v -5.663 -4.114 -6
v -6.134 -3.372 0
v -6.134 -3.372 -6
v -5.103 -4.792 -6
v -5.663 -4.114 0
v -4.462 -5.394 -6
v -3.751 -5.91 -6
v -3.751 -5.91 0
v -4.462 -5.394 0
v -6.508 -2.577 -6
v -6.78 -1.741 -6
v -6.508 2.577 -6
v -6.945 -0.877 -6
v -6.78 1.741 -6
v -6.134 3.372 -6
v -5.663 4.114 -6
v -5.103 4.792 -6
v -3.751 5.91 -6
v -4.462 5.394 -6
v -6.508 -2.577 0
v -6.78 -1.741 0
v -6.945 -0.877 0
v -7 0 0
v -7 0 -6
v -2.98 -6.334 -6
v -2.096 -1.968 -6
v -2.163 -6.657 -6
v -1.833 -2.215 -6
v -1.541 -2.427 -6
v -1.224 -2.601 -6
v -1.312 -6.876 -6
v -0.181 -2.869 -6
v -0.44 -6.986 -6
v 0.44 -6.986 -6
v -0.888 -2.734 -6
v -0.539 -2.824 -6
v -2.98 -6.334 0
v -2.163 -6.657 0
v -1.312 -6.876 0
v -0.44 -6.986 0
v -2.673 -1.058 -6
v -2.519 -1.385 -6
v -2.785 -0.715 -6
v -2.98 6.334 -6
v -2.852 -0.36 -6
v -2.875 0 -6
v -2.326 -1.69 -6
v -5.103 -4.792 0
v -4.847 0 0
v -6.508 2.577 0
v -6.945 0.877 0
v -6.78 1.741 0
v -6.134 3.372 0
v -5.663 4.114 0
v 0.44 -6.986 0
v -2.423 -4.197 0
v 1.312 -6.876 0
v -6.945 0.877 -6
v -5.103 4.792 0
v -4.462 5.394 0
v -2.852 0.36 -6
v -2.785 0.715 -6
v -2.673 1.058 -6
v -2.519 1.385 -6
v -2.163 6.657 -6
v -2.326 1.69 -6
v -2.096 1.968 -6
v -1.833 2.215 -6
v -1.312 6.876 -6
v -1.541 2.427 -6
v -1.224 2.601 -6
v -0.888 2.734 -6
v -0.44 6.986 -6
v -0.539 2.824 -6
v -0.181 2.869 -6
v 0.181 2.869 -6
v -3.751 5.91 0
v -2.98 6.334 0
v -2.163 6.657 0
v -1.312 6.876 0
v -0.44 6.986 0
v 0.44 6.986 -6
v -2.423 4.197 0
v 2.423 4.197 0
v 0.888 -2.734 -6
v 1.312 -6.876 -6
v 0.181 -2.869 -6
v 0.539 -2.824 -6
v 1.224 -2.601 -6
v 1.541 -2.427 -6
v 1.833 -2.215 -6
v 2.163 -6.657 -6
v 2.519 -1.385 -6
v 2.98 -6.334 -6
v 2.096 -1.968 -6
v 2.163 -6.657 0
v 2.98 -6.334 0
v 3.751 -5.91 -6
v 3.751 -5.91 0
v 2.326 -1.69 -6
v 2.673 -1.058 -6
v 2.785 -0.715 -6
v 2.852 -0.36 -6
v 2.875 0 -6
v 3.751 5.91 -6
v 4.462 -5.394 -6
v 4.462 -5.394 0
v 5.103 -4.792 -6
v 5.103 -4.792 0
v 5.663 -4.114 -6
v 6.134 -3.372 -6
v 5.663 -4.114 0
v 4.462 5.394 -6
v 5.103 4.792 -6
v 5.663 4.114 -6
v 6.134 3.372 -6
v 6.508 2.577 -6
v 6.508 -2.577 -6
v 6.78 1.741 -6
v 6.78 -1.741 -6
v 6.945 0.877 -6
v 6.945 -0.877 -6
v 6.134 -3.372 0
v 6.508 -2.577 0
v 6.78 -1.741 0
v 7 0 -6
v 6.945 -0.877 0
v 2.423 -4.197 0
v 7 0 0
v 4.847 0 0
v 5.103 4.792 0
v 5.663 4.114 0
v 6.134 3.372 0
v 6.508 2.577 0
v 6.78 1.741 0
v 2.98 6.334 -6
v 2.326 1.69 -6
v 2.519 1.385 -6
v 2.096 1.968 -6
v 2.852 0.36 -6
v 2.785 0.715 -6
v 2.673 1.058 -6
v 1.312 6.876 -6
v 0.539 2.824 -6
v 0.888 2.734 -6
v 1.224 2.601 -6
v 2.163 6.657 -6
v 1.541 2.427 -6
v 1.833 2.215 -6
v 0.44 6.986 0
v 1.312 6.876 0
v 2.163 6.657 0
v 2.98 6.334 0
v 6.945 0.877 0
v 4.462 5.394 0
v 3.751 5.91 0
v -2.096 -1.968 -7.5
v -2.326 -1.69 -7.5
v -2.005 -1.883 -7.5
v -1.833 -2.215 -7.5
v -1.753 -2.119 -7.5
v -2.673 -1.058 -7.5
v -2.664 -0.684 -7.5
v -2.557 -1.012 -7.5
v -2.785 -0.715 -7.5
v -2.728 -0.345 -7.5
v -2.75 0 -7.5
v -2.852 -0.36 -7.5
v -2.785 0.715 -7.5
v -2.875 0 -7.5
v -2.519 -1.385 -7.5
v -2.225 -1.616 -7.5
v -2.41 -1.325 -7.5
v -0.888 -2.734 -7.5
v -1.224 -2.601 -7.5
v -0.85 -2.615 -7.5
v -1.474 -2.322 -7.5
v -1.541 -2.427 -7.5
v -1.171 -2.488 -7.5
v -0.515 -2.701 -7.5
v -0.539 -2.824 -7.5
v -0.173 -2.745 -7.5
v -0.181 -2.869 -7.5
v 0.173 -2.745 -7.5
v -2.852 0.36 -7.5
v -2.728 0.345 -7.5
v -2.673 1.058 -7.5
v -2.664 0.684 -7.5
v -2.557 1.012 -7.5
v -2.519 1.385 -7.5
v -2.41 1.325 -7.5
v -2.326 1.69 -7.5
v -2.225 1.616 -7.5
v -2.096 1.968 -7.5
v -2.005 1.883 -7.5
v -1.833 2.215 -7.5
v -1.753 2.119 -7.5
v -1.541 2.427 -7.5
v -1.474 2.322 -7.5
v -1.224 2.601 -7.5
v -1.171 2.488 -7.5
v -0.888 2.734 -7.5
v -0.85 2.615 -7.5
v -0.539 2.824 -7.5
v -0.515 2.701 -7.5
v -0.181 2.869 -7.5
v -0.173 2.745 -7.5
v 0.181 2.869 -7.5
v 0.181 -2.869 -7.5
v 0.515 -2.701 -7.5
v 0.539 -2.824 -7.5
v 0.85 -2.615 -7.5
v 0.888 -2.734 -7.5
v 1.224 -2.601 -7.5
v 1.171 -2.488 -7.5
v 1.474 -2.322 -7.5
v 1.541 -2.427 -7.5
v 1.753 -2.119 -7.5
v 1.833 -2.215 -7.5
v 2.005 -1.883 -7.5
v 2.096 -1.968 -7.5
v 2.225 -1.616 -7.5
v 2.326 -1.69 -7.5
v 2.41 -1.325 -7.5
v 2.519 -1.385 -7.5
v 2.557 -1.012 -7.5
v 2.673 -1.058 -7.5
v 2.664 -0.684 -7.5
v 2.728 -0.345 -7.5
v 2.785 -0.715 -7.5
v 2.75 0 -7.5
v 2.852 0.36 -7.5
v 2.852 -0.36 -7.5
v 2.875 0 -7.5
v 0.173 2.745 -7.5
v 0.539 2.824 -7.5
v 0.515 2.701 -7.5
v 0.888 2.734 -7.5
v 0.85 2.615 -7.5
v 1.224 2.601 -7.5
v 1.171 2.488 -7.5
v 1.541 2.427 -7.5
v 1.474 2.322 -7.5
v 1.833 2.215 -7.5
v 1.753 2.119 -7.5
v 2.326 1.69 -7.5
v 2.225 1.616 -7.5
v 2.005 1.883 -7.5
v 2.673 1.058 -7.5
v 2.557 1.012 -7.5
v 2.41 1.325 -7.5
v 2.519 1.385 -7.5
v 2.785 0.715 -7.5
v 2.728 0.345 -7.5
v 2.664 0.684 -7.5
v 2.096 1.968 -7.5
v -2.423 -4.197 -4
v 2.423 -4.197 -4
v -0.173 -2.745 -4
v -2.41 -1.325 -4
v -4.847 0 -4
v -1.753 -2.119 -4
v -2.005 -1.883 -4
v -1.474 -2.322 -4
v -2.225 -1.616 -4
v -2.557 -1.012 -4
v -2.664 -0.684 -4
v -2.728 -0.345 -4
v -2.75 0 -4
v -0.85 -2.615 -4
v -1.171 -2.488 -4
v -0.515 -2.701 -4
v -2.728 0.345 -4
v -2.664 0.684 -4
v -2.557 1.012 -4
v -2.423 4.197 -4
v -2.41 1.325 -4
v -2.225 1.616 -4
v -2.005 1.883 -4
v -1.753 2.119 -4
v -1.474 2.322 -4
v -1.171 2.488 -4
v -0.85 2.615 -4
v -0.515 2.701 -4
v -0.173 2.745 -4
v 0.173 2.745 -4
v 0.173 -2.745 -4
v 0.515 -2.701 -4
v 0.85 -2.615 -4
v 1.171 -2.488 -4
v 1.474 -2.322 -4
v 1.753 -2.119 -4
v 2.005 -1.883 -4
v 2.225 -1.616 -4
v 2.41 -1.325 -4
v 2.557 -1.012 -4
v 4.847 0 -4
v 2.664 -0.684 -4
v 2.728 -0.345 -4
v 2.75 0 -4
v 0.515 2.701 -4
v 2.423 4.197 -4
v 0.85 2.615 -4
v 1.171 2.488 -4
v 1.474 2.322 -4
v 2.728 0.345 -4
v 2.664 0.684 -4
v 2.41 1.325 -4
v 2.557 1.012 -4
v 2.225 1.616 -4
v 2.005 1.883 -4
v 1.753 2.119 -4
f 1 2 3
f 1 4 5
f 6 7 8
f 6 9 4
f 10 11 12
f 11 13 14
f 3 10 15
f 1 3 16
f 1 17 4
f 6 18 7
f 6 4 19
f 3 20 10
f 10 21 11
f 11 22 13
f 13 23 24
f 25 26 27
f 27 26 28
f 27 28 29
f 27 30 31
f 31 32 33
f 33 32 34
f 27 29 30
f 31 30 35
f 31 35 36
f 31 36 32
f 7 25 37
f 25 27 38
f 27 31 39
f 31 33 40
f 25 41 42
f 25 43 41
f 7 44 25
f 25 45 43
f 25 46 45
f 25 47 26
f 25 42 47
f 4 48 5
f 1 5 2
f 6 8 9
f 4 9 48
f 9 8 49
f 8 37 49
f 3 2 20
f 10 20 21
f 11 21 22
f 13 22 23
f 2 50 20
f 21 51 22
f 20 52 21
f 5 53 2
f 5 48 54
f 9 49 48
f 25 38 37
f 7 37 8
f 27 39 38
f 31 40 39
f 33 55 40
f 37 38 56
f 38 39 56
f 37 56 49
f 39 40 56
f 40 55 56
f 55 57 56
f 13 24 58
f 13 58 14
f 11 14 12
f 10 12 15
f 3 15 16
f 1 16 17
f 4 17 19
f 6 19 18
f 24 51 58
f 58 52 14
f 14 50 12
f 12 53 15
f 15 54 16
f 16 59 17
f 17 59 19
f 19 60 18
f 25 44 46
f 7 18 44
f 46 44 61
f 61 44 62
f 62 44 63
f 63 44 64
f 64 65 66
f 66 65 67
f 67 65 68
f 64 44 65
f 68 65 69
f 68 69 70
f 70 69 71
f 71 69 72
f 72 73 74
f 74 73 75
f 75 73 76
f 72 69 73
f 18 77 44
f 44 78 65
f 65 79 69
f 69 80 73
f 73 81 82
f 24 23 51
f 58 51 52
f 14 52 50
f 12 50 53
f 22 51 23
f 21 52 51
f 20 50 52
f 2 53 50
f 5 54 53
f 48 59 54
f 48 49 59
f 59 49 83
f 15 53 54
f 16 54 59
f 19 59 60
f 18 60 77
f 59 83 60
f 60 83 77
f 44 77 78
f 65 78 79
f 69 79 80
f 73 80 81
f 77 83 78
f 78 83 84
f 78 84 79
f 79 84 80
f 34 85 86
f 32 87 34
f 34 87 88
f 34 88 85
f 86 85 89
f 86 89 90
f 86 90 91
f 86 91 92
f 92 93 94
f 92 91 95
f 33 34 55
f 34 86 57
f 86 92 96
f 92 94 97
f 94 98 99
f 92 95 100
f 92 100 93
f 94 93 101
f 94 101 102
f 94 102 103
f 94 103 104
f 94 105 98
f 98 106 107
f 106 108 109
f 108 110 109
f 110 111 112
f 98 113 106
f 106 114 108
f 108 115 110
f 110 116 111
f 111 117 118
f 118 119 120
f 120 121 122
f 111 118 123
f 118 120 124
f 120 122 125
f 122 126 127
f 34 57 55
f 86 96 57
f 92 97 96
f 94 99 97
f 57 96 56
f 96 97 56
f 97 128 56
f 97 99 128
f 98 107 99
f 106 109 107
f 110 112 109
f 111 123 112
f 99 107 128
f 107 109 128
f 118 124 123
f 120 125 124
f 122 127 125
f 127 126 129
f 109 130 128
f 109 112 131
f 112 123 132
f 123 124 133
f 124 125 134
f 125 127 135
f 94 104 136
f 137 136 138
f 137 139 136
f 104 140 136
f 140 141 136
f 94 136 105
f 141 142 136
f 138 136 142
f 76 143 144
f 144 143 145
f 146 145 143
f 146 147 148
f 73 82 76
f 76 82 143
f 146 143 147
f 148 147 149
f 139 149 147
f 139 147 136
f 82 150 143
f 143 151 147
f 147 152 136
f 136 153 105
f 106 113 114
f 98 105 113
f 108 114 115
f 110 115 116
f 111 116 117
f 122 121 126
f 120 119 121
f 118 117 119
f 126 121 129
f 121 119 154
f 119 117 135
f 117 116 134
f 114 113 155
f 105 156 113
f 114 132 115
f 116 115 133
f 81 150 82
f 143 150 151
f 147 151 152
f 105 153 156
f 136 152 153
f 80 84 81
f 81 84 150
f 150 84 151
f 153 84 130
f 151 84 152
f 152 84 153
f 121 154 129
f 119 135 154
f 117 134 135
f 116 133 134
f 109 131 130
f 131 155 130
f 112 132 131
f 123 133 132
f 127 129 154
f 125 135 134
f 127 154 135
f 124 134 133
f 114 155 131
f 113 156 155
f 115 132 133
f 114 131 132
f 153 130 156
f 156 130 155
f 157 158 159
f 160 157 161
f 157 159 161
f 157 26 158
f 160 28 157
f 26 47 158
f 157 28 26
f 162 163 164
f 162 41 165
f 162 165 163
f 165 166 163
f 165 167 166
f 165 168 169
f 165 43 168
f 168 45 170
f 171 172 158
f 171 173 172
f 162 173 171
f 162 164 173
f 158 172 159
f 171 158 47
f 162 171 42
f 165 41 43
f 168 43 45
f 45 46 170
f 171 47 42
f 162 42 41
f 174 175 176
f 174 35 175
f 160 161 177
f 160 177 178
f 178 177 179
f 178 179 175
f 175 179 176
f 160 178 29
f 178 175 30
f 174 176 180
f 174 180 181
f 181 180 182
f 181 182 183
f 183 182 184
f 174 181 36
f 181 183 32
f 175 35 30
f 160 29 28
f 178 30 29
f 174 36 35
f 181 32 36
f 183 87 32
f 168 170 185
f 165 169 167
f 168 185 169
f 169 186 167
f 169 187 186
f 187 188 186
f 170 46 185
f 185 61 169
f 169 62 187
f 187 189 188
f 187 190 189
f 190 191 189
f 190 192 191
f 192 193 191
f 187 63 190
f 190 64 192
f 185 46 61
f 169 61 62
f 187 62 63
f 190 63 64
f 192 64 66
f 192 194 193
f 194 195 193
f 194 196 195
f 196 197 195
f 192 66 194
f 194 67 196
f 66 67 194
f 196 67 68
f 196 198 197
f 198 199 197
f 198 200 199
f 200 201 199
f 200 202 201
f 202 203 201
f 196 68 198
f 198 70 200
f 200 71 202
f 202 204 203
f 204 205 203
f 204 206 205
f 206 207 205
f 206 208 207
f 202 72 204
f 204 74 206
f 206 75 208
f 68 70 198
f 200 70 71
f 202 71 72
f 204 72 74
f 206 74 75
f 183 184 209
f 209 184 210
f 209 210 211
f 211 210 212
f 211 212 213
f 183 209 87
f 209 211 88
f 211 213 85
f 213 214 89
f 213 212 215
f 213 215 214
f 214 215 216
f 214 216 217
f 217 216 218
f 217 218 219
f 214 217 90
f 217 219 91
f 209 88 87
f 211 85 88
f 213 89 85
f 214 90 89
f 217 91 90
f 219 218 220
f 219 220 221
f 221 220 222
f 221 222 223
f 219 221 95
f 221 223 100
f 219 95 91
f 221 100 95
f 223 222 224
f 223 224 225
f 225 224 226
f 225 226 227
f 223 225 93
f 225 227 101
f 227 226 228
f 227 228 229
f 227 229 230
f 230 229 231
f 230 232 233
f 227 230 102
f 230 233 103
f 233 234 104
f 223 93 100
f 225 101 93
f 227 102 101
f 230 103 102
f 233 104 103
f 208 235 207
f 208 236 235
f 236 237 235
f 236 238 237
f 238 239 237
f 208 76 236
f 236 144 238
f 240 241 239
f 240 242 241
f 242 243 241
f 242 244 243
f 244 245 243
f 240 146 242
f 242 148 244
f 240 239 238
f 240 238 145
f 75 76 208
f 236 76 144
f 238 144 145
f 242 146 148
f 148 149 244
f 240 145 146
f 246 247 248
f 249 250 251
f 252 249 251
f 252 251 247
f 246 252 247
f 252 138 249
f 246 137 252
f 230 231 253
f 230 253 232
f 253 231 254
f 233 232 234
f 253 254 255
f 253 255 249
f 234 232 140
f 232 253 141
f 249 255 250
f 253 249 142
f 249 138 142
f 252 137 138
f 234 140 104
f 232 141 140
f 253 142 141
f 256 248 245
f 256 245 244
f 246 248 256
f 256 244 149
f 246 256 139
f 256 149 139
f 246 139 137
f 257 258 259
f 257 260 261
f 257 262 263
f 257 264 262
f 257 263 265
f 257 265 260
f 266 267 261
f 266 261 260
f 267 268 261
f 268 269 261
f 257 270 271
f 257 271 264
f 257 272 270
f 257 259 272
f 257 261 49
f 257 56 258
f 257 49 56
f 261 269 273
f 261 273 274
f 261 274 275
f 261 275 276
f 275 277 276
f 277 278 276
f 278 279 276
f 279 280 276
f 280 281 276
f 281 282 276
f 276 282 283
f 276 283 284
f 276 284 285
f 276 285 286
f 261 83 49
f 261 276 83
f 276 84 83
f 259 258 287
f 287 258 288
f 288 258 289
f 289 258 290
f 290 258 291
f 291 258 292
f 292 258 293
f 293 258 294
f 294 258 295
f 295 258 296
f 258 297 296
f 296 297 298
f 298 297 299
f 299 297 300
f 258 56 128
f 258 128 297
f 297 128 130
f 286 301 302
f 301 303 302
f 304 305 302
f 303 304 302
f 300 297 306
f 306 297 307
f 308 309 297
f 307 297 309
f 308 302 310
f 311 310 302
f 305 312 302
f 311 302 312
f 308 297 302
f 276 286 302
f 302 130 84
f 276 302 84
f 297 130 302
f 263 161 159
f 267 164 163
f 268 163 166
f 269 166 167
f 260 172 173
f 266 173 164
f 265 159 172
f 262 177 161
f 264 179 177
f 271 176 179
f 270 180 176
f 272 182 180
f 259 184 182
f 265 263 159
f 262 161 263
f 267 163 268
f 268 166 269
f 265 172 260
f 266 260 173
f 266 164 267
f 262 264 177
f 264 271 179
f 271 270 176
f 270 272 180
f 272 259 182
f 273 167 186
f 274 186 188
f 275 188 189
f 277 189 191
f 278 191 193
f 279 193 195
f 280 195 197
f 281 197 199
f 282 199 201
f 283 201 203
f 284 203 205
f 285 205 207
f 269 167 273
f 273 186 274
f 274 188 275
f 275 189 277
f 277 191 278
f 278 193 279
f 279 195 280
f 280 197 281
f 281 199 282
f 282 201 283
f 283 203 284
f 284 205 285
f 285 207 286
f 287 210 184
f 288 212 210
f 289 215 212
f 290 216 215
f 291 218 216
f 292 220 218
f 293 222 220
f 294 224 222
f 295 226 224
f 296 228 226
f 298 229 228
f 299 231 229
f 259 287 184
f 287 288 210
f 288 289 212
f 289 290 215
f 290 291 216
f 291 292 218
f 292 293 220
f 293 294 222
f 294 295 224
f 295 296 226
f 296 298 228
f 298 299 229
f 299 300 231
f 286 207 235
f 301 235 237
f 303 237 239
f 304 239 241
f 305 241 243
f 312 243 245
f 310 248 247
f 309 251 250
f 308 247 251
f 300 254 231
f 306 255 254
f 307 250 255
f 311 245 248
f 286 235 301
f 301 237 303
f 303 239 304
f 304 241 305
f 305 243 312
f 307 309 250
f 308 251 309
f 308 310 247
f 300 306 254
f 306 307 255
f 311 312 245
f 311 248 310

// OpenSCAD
$fn = 50;

difference() {
	union() {
		translate(v = [0, 0, -6.0]) {
			cylinder(h = 6.0, r = 7.0);
		}
		#translate(v = [0, 0, -7.5]) {
			cylinder(h = 7.5, r = 2.875);
		}
	}
	union() {
		translate(v = [0, 0, 0]) {
			rotate(a = [0, 0, 0]) {
				difference() {
					union() {
						translate(v = [0, 0, -4]) {
							linear_extrude(height = 4) {
								polygon(points = [[4.8468, 0.0], [2.4234000000000004, 4.197451927062417], [-2.423399999999999, 4.197451927062417], [-4.8468, 5.935618106107392e-16], [-2.423400000000002, -4.197451927062416], [2.423399999999997, -4.197451927062419]]);
							}
						}
					}
					union();
				}
			}
		}
		#translate(v = [0, 0, -100.0]) {
			cylinder(h = 200, r = 2.75);
		}
	}
}
